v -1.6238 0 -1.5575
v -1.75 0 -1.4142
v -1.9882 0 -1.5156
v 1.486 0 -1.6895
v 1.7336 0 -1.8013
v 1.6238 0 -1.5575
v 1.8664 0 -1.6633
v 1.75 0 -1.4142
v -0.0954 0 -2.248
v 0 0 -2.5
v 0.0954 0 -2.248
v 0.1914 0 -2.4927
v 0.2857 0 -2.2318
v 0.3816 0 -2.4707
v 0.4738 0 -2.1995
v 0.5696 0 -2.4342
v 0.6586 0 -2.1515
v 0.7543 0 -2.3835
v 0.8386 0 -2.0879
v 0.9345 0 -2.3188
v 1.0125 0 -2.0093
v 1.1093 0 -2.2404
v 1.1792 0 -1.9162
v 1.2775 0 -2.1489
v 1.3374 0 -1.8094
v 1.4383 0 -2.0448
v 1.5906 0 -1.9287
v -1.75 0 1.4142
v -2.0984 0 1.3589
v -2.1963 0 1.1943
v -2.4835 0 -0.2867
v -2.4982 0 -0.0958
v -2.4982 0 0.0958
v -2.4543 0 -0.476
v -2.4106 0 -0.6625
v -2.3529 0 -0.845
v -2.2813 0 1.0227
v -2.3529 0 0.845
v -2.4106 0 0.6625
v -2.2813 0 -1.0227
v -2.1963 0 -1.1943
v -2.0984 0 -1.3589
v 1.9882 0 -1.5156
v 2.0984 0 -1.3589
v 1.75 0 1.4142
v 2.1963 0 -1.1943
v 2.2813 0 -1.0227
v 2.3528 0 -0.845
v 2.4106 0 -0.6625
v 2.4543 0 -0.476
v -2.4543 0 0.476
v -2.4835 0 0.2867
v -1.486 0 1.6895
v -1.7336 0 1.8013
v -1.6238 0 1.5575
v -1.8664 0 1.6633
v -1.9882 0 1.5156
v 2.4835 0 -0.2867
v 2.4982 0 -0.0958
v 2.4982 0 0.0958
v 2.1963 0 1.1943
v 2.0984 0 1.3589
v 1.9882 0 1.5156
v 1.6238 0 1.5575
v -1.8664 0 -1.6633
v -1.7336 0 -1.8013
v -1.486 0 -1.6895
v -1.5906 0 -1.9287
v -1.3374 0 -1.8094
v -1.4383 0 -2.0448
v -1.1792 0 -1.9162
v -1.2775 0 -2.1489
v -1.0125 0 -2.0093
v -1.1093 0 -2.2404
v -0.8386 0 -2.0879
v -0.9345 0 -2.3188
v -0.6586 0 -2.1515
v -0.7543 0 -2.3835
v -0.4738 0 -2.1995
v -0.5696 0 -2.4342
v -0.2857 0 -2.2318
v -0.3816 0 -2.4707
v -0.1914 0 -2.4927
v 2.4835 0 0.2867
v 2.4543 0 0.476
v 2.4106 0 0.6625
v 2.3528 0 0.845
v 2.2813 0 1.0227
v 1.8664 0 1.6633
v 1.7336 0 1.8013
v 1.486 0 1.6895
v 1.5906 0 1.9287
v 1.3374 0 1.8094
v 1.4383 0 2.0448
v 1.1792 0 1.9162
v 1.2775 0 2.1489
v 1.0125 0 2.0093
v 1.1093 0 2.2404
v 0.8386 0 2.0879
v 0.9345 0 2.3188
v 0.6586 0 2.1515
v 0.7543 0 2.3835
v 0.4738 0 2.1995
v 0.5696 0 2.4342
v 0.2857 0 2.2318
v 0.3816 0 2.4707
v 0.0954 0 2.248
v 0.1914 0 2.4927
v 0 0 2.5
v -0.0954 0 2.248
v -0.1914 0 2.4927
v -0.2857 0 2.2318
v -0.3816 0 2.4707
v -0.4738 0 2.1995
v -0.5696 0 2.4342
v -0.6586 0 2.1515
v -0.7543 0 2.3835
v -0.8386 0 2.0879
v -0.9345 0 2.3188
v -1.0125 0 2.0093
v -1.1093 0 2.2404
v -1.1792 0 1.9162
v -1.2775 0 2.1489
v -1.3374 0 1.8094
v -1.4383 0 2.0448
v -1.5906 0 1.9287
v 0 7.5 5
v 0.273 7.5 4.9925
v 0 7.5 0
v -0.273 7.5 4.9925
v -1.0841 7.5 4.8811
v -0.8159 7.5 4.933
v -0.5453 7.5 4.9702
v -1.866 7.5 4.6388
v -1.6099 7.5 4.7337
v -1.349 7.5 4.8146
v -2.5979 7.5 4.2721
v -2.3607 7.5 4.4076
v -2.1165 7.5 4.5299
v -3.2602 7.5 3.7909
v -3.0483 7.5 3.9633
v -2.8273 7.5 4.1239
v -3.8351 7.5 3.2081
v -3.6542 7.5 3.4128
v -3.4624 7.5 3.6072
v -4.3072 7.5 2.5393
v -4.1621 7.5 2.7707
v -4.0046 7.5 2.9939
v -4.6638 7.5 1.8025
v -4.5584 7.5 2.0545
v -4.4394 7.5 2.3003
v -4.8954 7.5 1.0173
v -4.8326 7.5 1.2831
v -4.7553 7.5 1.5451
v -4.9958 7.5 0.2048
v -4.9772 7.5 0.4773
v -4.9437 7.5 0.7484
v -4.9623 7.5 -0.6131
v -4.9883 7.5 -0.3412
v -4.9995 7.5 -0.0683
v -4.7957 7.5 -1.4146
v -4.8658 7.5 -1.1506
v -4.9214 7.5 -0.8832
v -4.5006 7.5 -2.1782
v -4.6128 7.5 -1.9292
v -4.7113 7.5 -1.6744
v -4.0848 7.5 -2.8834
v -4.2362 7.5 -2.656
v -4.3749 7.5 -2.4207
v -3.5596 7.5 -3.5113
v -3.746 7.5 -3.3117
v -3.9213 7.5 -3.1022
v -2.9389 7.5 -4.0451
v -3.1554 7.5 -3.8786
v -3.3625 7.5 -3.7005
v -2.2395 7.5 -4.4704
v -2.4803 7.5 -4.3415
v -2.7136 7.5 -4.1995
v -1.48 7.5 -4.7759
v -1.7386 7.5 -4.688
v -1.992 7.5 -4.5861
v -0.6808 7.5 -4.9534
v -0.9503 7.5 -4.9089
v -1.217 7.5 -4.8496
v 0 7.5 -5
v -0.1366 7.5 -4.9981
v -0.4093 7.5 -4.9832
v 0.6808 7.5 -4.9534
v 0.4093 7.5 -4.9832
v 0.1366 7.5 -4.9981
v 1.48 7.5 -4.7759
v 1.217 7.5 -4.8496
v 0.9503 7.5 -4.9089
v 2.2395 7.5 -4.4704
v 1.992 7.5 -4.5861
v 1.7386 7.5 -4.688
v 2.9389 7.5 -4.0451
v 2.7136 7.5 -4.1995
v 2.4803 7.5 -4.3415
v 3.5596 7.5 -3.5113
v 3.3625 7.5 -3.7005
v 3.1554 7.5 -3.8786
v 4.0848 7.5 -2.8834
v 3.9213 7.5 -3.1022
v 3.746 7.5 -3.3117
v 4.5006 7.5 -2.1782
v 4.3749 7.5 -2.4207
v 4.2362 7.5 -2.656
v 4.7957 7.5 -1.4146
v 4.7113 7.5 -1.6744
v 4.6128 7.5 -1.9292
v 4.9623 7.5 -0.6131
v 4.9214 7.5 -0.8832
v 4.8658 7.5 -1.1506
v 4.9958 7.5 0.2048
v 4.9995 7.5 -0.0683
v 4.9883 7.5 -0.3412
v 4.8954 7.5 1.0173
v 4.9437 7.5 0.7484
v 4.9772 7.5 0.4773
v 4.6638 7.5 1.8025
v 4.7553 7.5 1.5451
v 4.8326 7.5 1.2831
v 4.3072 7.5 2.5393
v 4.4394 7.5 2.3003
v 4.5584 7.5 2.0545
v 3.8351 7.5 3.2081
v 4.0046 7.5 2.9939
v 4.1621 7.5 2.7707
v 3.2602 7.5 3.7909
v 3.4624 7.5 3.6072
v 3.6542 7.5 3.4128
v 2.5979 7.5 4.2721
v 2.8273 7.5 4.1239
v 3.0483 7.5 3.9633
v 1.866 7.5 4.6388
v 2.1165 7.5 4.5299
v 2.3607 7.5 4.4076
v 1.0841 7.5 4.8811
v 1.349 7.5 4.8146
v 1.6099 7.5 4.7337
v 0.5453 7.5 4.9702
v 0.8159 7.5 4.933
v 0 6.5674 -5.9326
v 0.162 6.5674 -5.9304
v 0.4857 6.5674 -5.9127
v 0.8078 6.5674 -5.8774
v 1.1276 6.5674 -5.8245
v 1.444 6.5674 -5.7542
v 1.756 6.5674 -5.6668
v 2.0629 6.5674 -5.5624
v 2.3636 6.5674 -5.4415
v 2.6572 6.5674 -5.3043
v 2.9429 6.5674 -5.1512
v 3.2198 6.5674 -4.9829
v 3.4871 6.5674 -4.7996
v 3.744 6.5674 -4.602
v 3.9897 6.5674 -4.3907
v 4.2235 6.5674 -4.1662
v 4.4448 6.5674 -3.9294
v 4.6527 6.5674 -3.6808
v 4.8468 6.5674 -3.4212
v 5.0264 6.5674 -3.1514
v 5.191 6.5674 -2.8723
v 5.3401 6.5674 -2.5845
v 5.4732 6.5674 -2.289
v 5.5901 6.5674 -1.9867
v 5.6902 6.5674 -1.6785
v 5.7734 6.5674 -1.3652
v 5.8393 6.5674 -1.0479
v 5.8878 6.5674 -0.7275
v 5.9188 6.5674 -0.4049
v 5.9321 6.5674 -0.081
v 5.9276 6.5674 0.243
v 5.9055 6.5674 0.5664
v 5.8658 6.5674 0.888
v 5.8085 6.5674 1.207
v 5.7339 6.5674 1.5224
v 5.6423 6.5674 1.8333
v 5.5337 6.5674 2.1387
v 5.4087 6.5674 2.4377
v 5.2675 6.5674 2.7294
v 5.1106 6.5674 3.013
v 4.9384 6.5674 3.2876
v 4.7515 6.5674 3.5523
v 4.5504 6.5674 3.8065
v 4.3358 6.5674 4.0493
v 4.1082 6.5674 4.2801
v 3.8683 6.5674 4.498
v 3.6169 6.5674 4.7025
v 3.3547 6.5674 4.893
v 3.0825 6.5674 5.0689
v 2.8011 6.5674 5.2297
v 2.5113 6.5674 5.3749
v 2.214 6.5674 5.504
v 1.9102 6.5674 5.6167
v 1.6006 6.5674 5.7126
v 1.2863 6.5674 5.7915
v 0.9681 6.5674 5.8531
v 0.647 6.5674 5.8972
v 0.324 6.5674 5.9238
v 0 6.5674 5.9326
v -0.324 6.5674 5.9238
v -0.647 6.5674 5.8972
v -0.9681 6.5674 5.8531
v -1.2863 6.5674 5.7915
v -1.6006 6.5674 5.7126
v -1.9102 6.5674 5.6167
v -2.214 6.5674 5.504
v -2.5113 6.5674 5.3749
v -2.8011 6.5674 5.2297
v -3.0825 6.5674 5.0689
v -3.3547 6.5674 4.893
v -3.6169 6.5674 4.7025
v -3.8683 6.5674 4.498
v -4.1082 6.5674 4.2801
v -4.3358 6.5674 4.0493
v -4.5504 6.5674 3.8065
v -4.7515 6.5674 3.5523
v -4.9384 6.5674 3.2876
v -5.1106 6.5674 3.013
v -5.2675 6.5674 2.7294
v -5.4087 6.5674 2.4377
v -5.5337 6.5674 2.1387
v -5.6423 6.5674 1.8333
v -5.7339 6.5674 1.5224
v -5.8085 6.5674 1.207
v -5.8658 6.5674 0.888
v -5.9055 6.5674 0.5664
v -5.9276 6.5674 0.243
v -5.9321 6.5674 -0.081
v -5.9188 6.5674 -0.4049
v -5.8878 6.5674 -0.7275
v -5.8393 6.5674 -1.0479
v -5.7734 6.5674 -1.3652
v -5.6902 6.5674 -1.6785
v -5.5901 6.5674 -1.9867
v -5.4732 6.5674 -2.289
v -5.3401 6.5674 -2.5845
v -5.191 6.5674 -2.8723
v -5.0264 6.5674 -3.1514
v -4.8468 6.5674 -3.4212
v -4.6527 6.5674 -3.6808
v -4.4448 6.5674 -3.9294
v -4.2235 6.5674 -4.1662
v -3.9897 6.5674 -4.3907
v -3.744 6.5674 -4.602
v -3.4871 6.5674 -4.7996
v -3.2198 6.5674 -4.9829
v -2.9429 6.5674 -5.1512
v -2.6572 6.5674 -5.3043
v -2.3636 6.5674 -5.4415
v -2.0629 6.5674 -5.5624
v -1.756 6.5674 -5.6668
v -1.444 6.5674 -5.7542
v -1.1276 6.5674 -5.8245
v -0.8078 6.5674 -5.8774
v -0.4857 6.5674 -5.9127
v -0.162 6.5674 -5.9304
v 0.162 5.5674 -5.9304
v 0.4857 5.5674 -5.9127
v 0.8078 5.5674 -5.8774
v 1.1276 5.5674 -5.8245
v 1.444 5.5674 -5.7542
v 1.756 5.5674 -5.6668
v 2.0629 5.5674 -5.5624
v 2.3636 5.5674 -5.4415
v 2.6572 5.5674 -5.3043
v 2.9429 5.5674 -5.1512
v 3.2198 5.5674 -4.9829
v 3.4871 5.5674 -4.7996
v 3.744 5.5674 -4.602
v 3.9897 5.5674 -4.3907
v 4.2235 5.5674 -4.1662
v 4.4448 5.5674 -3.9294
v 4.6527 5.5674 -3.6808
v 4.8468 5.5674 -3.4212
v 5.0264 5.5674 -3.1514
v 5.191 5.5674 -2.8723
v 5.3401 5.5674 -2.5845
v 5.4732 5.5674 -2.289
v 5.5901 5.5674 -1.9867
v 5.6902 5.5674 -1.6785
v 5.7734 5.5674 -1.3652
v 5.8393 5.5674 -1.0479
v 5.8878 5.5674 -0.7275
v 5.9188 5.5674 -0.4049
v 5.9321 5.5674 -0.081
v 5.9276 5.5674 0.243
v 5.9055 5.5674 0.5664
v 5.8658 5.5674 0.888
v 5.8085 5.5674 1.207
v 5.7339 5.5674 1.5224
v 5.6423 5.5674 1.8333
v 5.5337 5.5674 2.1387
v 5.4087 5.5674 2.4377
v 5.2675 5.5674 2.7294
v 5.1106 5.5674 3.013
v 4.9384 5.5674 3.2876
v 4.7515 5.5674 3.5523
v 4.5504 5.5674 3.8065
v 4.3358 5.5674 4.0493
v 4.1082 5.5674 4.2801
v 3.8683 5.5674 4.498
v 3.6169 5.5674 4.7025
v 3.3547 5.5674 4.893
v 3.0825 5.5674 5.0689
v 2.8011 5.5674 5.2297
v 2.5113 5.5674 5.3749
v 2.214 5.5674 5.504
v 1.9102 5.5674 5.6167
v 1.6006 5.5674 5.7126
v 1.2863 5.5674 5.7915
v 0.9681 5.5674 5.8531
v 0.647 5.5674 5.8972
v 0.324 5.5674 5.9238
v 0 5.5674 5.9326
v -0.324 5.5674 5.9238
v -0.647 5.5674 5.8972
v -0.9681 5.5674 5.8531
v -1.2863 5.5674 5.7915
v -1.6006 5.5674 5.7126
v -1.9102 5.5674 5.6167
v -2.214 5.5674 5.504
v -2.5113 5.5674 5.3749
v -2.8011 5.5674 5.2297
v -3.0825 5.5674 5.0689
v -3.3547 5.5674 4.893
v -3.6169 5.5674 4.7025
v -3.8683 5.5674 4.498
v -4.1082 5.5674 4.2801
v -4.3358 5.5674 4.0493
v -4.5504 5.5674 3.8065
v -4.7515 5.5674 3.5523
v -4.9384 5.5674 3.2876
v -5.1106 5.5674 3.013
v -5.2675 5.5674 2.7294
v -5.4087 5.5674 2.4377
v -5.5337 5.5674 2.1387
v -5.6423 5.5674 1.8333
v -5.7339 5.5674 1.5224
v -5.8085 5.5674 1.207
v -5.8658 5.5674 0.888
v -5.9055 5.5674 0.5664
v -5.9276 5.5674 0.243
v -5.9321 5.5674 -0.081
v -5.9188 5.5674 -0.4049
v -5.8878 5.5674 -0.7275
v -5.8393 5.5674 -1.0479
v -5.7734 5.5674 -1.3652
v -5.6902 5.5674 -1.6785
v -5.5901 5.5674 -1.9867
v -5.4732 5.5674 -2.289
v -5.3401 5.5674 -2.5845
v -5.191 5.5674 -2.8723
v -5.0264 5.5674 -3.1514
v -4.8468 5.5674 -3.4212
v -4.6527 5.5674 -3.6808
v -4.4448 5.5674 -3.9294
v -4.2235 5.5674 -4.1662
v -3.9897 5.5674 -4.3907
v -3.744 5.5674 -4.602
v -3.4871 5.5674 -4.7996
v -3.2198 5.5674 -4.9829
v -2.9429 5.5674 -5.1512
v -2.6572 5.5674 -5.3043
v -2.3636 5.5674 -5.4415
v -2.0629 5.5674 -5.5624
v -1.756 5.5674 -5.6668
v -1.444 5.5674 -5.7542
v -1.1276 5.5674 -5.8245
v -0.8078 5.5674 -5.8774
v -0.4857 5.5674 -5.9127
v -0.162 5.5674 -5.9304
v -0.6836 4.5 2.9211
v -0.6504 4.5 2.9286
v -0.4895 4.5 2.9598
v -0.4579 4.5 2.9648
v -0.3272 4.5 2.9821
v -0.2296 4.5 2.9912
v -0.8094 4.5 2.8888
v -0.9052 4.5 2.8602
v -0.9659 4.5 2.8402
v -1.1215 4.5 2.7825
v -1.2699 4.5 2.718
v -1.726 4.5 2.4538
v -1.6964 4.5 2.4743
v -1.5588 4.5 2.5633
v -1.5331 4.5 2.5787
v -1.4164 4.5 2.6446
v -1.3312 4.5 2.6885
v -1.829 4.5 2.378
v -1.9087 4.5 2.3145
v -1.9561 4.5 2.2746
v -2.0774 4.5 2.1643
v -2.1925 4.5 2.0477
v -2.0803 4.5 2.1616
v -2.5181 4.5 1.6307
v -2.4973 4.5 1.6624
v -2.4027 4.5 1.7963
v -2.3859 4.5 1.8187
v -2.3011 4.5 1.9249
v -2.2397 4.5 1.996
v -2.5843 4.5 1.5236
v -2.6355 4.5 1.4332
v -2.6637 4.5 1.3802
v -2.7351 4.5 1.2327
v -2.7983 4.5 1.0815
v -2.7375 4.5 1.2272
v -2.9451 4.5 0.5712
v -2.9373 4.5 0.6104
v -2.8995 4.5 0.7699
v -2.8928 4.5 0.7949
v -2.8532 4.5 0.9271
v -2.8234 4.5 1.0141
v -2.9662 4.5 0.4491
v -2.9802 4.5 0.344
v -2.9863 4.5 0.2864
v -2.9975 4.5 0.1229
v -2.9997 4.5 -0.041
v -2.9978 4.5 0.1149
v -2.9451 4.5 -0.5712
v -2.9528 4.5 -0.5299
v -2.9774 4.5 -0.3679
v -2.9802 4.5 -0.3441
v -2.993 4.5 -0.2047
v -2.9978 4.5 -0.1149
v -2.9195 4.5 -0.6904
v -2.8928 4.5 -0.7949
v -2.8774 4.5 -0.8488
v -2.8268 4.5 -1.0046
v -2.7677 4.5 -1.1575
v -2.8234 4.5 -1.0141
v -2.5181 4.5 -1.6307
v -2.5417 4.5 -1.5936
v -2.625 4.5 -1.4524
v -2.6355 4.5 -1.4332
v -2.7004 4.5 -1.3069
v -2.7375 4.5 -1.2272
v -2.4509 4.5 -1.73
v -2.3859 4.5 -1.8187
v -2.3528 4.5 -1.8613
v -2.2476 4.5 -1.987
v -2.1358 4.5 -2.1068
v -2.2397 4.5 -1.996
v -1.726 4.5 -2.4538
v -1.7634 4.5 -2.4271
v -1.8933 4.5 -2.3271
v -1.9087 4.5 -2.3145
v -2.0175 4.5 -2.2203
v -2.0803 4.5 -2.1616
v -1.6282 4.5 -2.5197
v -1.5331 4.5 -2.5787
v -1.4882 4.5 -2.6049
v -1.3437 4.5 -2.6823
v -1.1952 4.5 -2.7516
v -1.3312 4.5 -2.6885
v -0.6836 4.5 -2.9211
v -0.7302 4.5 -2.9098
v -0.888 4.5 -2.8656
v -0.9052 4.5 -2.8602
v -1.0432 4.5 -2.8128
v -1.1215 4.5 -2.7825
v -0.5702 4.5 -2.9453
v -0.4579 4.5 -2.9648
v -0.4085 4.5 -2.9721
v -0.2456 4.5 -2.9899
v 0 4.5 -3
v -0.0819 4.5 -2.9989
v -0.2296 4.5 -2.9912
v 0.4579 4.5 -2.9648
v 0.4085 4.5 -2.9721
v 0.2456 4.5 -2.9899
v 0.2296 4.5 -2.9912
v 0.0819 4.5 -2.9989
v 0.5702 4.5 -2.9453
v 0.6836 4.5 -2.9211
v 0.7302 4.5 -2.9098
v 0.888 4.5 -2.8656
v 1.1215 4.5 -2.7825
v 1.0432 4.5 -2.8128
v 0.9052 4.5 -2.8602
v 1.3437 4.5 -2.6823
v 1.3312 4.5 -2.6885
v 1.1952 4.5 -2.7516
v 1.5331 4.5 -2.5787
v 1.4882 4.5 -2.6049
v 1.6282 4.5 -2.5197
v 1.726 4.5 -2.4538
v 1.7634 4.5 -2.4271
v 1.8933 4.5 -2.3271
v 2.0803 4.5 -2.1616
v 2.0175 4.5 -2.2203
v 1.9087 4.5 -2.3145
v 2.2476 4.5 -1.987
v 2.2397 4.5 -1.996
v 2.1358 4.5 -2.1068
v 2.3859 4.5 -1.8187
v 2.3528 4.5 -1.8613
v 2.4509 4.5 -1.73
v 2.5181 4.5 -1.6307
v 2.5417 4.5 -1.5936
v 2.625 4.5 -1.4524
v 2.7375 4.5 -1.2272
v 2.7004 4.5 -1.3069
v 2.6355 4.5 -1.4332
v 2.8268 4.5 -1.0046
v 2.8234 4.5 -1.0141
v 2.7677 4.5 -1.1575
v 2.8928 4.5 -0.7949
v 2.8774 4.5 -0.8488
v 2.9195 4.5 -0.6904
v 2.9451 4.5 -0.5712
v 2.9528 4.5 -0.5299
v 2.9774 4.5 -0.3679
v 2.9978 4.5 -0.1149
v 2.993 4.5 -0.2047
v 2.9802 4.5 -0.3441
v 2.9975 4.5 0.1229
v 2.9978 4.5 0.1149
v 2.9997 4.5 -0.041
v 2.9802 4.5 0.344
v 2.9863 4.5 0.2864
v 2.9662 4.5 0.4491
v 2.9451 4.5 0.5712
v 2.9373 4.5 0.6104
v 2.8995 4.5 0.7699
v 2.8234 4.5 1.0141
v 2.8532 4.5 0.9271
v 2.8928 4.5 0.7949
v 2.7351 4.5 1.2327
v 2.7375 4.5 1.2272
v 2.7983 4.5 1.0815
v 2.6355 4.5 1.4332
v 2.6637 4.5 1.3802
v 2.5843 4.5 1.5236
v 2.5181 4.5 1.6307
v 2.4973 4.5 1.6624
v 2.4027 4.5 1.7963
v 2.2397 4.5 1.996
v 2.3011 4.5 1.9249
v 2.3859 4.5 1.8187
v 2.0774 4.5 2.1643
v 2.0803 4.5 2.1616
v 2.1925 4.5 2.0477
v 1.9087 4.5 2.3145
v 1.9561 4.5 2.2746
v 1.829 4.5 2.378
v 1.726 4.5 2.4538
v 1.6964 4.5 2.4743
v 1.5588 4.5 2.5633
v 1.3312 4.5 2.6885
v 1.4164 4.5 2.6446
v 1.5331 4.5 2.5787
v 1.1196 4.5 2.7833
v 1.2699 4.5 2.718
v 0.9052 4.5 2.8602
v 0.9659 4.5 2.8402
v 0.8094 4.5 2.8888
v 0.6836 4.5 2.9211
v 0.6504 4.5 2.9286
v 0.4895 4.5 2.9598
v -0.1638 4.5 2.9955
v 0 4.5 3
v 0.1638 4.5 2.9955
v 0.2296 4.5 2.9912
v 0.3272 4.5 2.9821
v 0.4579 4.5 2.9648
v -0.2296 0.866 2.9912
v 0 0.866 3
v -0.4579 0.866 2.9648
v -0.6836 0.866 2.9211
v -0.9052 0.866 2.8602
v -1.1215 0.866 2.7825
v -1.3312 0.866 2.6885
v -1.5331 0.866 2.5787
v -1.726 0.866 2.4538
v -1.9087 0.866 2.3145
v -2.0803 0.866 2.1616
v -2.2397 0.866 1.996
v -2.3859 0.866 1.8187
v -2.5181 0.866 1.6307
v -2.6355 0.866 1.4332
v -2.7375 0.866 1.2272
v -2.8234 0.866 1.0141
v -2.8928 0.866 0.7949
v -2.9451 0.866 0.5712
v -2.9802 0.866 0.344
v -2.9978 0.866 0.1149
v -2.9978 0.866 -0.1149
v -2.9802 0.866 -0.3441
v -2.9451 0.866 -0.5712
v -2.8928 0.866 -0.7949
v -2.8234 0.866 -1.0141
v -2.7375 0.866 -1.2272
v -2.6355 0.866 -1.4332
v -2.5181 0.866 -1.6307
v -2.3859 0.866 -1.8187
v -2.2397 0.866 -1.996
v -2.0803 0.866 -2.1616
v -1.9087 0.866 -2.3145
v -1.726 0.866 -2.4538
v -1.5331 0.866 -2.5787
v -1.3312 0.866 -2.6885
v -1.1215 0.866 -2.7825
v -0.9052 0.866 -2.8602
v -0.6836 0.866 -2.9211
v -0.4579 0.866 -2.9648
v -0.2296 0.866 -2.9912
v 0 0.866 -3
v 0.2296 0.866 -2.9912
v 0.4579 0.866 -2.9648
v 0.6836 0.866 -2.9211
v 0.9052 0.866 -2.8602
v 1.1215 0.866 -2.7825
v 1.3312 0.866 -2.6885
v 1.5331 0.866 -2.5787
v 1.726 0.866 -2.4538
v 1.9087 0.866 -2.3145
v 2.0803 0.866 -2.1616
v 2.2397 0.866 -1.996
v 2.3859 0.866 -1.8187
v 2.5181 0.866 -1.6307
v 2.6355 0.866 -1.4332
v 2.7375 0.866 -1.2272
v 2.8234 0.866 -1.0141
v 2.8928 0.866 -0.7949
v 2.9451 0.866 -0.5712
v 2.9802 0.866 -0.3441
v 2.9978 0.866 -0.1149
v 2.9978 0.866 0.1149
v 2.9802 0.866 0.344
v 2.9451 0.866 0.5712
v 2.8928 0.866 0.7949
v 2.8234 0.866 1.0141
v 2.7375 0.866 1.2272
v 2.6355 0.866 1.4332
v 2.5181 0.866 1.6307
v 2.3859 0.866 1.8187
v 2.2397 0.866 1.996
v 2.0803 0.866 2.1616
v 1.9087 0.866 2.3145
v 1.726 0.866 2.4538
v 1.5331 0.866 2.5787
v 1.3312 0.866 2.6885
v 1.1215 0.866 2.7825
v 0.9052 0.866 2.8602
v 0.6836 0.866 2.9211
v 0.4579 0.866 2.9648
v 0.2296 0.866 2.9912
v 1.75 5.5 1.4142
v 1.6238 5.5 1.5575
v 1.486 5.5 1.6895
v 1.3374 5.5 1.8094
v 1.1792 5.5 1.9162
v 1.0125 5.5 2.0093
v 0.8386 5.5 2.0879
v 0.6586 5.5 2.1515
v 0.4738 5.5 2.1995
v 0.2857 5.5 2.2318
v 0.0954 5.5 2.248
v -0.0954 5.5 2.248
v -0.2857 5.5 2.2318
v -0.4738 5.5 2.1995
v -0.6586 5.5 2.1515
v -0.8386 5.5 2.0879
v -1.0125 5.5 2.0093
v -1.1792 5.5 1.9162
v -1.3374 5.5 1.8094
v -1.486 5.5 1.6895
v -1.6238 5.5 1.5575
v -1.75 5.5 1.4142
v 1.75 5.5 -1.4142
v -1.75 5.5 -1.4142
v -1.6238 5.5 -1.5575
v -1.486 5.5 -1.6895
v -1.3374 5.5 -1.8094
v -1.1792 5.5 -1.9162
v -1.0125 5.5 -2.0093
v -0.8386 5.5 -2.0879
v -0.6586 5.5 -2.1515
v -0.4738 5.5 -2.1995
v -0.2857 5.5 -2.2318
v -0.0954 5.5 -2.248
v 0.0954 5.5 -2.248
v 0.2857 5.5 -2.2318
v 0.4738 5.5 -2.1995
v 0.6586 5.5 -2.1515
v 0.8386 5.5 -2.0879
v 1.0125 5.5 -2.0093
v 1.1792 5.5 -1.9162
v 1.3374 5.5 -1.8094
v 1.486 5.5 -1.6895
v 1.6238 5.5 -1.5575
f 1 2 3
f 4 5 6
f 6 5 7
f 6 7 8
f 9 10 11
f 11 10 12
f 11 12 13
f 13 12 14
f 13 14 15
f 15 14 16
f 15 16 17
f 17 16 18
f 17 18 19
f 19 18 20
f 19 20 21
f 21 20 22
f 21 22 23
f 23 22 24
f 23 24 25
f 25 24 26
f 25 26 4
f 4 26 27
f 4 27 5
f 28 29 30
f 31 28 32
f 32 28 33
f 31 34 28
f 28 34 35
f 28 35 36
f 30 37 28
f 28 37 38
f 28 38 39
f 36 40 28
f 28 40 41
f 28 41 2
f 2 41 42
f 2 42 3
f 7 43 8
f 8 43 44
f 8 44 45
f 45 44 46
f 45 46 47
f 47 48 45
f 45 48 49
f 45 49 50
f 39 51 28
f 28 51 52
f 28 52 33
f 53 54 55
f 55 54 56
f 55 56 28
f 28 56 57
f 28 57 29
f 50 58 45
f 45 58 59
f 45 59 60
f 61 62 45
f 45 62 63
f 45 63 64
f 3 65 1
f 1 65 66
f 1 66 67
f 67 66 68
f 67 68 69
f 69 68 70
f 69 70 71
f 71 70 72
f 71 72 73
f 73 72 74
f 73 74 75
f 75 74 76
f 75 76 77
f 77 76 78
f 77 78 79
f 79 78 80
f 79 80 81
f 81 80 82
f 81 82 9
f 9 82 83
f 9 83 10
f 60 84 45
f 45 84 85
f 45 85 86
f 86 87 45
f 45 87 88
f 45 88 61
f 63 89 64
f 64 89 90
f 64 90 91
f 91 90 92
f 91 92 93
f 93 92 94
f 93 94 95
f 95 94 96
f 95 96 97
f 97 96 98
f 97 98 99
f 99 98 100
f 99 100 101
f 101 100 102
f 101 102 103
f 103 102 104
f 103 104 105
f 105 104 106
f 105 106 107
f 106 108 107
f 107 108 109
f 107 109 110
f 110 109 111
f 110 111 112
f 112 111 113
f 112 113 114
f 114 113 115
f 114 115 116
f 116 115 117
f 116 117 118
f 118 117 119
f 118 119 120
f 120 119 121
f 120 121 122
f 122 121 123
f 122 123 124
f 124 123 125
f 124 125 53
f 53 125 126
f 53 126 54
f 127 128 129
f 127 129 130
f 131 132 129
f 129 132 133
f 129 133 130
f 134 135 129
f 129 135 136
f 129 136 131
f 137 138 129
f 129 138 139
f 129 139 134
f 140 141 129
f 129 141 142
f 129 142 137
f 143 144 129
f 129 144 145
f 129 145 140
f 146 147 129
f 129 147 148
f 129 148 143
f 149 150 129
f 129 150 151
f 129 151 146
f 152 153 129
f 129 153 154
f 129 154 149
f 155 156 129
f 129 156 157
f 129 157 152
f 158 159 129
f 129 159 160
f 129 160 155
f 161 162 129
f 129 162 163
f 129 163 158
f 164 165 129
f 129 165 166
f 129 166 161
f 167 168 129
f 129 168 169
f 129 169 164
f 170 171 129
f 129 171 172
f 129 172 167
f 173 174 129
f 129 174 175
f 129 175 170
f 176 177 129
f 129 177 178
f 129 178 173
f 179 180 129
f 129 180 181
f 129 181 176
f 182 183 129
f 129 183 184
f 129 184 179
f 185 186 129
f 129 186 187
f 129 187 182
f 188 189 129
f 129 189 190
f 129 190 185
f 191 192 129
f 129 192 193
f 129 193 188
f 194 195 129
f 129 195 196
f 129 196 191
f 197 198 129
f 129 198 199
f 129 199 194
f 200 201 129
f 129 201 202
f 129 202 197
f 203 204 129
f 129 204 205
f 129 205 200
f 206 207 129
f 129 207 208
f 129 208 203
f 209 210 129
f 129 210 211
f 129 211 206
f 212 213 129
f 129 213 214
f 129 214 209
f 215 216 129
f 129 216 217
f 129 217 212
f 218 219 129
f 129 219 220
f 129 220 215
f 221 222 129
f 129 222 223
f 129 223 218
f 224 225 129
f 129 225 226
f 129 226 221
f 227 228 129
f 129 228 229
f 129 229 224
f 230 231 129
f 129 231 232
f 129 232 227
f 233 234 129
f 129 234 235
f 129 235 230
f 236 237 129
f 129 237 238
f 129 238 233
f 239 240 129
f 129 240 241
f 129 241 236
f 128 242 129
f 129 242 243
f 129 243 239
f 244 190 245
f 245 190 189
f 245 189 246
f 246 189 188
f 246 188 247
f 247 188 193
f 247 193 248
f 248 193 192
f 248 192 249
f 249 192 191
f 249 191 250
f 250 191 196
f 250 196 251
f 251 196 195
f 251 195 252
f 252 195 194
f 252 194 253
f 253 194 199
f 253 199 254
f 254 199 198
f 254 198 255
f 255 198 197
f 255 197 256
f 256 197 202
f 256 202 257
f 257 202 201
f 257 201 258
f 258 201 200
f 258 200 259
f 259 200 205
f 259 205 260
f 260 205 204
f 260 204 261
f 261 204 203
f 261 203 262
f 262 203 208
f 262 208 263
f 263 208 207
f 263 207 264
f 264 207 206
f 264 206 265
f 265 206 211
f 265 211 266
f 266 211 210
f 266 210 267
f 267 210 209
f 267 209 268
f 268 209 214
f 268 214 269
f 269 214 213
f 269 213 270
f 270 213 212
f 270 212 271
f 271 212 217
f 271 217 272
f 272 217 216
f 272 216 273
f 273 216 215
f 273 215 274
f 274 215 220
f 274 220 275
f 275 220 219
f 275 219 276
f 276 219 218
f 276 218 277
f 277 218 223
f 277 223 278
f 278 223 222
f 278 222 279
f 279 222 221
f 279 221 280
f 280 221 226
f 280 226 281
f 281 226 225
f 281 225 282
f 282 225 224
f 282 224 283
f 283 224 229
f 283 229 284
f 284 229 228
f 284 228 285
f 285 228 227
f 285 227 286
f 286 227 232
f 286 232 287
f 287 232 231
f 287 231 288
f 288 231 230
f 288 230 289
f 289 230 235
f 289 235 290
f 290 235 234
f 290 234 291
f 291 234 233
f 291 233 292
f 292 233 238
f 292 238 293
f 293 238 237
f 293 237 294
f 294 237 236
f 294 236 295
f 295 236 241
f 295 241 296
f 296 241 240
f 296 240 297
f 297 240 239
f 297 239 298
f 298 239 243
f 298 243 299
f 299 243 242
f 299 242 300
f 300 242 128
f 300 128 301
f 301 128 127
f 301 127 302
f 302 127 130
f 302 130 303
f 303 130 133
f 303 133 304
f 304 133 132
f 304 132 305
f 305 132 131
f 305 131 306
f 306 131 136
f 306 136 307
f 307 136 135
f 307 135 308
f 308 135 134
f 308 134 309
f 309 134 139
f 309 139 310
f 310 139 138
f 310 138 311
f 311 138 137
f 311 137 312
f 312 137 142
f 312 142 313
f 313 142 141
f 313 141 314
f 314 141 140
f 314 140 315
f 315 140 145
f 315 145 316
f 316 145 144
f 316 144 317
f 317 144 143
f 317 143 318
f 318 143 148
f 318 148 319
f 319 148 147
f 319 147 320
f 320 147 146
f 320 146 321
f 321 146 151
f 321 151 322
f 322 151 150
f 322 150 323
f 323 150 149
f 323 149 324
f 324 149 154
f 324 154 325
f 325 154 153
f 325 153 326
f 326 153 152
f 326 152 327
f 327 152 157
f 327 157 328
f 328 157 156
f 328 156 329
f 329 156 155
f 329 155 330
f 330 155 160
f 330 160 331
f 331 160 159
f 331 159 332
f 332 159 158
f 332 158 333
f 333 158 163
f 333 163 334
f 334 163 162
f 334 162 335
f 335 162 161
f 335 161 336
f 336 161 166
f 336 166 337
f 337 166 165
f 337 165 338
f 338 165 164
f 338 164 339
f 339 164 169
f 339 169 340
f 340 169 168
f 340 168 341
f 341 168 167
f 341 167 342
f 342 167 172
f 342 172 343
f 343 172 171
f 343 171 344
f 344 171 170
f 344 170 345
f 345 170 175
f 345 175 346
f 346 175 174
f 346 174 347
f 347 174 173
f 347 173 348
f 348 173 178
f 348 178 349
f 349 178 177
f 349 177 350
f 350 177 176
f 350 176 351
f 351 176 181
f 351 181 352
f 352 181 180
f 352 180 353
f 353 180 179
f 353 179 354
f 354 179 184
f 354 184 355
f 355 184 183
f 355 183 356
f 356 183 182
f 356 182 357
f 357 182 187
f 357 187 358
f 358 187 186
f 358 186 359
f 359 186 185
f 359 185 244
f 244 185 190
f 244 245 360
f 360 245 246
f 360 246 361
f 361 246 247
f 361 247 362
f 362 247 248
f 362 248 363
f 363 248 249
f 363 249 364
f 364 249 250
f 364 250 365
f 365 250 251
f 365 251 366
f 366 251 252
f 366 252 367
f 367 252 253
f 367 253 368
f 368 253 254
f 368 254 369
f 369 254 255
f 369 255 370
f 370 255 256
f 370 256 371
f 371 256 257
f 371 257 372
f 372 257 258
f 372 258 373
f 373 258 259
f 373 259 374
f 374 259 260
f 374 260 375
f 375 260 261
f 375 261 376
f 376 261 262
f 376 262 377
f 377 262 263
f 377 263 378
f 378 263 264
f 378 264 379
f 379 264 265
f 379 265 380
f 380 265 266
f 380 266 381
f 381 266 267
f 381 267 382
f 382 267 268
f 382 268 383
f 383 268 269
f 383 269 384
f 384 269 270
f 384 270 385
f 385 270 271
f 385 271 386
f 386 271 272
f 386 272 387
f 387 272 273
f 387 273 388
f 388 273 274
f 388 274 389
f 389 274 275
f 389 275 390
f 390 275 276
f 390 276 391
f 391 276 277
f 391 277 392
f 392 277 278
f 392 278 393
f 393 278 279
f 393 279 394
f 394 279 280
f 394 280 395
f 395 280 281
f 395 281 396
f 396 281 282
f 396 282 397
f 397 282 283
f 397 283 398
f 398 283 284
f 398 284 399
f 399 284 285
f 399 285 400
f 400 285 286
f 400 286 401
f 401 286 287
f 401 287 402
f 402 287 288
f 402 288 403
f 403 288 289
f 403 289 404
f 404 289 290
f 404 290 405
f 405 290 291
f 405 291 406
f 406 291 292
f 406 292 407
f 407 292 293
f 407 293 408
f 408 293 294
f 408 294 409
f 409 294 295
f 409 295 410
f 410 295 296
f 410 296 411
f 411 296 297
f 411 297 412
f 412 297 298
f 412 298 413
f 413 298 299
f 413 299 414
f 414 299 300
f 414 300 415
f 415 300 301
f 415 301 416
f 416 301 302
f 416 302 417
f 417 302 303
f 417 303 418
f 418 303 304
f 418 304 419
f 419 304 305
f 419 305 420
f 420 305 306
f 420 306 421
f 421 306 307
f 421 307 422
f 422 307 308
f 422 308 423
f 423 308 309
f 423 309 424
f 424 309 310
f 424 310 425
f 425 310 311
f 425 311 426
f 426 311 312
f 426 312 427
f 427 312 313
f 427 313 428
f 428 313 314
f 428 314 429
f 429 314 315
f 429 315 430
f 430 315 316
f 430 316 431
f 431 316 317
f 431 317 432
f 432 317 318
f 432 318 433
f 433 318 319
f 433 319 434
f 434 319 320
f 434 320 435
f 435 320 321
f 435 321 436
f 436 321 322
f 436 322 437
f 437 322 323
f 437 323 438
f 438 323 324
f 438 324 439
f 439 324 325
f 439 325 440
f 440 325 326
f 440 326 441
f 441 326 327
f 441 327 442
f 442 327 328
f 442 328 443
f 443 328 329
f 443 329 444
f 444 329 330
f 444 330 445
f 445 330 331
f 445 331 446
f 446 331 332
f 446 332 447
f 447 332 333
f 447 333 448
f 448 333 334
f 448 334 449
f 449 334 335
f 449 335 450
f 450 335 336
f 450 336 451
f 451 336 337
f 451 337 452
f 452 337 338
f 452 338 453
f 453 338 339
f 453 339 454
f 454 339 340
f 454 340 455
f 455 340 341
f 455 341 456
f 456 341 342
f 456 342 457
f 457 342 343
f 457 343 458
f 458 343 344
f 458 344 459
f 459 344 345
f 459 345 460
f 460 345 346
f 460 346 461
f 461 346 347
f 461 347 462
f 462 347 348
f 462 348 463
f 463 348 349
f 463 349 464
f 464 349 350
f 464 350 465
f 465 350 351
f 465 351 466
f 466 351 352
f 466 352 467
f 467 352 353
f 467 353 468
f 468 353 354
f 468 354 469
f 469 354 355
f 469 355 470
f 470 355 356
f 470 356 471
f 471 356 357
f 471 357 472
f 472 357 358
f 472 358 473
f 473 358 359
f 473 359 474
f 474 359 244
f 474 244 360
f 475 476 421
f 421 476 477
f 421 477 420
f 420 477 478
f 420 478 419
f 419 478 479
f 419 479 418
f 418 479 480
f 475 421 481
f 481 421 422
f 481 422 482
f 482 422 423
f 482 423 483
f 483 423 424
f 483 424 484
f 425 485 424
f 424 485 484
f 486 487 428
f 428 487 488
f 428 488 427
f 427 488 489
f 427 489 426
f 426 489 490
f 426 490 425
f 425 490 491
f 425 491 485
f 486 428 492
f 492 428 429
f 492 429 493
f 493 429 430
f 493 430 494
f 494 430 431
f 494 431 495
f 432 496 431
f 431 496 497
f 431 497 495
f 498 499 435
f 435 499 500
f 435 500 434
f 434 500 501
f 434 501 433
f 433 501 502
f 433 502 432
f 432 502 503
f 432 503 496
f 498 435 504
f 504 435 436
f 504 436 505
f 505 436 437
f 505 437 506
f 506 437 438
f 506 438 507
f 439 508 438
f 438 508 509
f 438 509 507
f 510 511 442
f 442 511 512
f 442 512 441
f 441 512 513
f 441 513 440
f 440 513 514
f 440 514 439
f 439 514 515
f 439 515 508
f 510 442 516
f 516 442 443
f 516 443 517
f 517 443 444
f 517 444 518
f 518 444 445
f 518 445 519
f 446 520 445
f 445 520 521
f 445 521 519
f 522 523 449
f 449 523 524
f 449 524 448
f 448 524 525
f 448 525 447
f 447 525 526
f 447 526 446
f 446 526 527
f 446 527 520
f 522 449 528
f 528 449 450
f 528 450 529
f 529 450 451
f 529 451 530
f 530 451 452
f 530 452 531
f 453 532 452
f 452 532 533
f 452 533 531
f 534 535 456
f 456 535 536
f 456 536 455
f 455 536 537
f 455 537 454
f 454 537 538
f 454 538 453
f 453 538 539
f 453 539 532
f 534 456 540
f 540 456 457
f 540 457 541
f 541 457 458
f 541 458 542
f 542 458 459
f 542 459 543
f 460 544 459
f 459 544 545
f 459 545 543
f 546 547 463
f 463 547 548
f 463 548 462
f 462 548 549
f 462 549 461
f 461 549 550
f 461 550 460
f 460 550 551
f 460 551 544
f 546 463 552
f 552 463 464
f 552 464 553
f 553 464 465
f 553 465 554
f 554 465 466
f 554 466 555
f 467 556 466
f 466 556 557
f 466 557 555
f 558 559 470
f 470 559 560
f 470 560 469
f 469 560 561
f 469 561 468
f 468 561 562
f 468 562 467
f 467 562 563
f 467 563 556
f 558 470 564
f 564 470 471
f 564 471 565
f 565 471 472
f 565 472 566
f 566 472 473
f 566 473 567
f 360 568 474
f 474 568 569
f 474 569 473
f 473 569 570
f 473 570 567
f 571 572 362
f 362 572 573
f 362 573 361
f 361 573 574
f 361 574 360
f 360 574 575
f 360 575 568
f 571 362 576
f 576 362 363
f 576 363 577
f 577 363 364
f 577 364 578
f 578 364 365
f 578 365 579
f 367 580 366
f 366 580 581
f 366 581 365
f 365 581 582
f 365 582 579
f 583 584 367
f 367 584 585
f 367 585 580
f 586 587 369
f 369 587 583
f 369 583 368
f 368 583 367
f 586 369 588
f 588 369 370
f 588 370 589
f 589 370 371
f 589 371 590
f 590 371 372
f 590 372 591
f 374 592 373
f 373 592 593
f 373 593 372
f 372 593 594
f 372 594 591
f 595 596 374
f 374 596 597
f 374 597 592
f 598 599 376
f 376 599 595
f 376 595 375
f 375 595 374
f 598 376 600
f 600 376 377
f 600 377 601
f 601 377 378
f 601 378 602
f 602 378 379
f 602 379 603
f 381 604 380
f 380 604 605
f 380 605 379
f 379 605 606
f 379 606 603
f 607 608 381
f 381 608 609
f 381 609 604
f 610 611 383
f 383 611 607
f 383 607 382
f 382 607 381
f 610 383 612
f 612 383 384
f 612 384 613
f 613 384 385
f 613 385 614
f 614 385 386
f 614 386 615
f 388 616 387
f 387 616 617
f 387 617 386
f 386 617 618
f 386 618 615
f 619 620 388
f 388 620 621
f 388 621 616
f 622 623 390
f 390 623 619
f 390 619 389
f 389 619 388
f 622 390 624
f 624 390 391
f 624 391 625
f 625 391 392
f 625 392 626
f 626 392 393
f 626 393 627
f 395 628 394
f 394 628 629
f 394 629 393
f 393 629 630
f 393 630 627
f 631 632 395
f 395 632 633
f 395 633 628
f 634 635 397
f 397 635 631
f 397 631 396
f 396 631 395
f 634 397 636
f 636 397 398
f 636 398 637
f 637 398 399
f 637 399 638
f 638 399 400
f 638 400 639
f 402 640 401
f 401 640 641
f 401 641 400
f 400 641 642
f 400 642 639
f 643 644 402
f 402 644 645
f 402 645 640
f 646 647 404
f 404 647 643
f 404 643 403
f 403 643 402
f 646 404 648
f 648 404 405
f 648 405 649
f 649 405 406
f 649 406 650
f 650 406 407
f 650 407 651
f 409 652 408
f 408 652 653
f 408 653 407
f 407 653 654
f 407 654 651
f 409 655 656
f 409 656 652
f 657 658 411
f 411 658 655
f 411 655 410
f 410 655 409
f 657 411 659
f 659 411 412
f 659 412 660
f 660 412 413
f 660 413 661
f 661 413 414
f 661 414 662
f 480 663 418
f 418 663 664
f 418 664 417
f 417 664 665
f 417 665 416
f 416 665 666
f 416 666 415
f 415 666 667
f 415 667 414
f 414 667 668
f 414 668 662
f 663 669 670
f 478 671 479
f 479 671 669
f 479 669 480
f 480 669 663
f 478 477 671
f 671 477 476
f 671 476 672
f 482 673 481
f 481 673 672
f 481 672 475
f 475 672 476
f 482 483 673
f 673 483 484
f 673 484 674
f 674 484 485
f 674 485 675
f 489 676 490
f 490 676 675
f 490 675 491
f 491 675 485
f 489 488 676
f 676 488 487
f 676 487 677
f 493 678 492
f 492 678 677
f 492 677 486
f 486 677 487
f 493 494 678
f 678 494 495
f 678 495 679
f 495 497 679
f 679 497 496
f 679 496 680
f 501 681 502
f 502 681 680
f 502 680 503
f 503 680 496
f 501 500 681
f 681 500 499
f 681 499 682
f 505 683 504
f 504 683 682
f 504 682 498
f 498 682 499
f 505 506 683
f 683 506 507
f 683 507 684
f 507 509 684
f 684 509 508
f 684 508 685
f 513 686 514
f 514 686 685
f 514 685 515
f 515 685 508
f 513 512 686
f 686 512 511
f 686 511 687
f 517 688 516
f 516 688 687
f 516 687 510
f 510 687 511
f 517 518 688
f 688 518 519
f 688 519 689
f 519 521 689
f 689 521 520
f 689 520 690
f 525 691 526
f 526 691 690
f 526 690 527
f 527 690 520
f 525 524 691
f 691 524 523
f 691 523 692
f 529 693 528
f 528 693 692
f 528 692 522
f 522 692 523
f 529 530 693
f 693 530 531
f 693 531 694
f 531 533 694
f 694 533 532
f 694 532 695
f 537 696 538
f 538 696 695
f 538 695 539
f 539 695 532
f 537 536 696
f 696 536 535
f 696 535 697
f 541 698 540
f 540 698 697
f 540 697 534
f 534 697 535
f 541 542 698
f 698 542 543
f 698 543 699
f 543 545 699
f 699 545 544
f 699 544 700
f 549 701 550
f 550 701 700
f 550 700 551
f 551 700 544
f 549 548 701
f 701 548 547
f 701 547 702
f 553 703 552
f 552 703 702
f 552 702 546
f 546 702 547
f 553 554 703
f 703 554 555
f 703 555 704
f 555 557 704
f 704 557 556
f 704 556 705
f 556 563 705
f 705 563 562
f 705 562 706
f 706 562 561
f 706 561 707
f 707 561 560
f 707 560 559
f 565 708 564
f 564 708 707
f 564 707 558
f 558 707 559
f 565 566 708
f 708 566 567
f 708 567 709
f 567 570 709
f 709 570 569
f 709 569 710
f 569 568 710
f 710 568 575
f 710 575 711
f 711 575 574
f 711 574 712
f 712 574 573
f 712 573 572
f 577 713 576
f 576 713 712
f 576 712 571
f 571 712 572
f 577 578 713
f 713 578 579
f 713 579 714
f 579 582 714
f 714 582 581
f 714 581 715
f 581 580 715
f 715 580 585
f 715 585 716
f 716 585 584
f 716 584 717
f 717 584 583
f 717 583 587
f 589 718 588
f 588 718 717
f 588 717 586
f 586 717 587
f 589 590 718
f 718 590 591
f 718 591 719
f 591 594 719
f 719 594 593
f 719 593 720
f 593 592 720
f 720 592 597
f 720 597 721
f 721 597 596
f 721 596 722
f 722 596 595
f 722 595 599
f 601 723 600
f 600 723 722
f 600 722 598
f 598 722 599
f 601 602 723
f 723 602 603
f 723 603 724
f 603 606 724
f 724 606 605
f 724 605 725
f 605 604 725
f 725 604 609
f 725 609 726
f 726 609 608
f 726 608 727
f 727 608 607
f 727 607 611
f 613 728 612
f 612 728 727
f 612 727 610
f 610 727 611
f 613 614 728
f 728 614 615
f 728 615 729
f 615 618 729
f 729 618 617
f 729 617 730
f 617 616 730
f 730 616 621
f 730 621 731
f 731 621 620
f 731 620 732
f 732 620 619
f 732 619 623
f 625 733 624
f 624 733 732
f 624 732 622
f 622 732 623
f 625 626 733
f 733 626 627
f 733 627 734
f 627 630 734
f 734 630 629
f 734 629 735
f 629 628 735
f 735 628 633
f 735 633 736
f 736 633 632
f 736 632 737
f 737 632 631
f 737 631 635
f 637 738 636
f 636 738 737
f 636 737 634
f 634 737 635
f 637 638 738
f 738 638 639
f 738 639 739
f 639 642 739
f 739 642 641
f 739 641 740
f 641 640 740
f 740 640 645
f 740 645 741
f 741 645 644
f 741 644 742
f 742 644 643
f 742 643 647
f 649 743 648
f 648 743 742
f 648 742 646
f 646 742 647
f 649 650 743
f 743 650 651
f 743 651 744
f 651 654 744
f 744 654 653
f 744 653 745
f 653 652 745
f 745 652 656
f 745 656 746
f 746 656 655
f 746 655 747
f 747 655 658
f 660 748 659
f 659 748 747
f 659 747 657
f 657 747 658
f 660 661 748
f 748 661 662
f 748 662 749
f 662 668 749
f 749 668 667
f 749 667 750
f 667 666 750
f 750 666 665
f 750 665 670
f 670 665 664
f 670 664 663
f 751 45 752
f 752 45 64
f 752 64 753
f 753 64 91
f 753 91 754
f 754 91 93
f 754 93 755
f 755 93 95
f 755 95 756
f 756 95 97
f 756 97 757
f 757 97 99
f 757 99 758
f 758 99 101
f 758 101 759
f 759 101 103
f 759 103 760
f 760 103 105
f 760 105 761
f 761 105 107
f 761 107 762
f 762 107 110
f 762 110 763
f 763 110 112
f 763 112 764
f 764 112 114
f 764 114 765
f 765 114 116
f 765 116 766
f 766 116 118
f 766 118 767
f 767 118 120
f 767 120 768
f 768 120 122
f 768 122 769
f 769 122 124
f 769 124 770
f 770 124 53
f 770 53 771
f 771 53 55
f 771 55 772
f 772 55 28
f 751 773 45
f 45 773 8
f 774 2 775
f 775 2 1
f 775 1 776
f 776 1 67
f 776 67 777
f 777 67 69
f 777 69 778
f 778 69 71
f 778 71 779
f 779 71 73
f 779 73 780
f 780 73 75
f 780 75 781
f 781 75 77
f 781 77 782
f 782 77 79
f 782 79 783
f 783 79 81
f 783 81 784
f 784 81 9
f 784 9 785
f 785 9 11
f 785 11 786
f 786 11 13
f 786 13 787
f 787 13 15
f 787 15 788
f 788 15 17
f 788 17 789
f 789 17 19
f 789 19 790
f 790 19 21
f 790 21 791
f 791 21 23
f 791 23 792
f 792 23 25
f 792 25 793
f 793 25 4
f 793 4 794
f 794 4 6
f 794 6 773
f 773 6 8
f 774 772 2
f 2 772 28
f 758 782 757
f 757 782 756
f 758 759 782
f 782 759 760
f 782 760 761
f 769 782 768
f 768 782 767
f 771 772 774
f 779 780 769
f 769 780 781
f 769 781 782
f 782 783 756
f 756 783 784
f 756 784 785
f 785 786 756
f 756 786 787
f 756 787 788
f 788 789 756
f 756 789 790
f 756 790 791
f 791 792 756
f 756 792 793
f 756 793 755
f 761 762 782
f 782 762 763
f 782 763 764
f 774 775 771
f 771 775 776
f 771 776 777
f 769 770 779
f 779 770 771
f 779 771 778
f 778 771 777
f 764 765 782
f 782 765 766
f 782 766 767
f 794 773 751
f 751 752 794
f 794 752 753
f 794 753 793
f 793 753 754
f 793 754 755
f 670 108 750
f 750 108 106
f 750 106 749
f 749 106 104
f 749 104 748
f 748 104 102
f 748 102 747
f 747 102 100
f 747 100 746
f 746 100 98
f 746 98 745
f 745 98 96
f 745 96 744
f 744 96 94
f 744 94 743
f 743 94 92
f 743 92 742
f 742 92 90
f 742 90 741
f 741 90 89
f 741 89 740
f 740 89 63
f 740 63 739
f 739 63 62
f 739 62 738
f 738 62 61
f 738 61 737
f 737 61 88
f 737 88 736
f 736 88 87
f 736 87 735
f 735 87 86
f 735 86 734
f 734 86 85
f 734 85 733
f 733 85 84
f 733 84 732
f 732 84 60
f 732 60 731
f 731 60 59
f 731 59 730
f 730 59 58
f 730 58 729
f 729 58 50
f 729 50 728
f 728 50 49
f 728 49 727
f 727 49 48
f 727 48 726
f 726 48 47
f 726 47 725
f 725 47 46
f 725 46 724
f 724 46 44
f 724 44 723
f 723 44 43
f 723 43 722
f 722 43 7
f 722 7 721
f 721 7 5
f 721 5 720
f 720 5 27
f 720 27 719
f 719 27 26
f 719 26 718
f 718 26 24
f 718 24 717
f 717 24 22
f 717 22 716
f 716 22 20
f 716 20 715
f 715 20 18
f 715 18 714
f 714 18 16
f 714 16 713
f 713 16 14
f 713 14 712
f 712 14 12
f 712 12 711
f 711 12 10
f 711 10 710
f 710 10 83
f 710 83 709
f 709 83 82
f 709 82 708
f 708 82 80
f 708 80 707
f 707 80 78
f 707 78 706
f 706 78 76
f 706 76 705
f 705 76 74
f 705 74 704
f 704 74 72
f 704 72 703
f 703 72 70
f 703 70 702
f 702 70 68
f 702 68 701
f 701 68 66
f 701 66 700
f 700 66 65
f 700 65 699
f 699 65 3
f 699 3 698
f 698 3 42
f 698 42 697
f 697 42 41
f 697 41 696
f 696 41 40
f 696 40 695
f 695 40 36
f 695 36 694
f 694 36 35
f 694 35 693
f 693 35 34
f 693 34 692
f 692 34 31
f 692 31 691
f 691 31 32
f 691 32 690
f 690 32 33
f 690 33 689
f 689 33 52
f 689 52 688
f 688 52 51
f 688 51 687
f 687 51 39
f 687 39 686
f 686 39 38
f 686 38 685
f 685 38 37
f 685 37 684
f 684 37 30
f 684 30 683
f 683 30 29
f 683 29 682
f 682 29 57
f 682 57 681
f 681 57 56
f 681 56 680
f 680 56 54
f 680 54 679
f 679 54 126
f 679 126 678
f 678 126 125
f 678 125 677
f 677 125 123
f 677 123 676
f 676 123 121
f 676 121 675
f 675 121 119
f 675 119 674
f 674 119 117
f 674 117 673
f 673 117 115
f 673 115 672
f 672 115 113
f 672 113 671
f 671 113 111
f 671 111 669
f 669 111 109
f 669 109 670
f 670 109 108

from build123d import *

# Parameters (mm, degrees)
CUT_EXTRUDE1_DEPTH = 5.5
CHAMFER1_SIZE      = 0.5
CHAMFER1_SIZE2     = 0.866025404


with BuildPart() as part:
    # Sketch1 → Revolve1 (revolve)
    with BuildSketch(Plane.XY):
        Polygon((0, 0), (0, 7.5), (-5, 7.5), (-5.932615316, 6.567384684), (-5.932615316, 5.567384684), (-3, 4.5), (-3, 0), align=None)
    revolve(axis=Axis((0, 14, 0), (0, -1, 0)))

    # Sketch2 → Cut-Extrude1 (cut)
    with BuildSketch(Plane.XZ):
        with BuildLine():
            Line((1.75, -1.414213562), (1.75, 1.414213562))
            ThreePointArc((1.75, 1.414213562), (0, 2.25), (-1.75, 1.414213562))
            Line((-1.75, 1.414213562), (-1.75, -1.414213562))
            ThreePointArc((-1.75, -1.414213562), (0, -2.25), (1.75, -1.414213562))
        make_face()
    extrude(amount=-CUT_EXTRUDE1_DEPTH, mode=Mode.SUBTRACT)

    # Chamfer1
    chamfer1_edges = [part.edges().sort_by_distance(p)[0] for p in [
        (3, 0, 0),
    ]]
    chamfer1_side = [part.faces().sort_by_distance(p)[0] for p in [
        (2.915147186, 0, 0),
    ]]
    chamfer(chamfer1_edges, length=CHAMFER1_SIZE, length2=CHAMFER1_SIZE2, reference=chamfer1_side[0])


solid = part.part
